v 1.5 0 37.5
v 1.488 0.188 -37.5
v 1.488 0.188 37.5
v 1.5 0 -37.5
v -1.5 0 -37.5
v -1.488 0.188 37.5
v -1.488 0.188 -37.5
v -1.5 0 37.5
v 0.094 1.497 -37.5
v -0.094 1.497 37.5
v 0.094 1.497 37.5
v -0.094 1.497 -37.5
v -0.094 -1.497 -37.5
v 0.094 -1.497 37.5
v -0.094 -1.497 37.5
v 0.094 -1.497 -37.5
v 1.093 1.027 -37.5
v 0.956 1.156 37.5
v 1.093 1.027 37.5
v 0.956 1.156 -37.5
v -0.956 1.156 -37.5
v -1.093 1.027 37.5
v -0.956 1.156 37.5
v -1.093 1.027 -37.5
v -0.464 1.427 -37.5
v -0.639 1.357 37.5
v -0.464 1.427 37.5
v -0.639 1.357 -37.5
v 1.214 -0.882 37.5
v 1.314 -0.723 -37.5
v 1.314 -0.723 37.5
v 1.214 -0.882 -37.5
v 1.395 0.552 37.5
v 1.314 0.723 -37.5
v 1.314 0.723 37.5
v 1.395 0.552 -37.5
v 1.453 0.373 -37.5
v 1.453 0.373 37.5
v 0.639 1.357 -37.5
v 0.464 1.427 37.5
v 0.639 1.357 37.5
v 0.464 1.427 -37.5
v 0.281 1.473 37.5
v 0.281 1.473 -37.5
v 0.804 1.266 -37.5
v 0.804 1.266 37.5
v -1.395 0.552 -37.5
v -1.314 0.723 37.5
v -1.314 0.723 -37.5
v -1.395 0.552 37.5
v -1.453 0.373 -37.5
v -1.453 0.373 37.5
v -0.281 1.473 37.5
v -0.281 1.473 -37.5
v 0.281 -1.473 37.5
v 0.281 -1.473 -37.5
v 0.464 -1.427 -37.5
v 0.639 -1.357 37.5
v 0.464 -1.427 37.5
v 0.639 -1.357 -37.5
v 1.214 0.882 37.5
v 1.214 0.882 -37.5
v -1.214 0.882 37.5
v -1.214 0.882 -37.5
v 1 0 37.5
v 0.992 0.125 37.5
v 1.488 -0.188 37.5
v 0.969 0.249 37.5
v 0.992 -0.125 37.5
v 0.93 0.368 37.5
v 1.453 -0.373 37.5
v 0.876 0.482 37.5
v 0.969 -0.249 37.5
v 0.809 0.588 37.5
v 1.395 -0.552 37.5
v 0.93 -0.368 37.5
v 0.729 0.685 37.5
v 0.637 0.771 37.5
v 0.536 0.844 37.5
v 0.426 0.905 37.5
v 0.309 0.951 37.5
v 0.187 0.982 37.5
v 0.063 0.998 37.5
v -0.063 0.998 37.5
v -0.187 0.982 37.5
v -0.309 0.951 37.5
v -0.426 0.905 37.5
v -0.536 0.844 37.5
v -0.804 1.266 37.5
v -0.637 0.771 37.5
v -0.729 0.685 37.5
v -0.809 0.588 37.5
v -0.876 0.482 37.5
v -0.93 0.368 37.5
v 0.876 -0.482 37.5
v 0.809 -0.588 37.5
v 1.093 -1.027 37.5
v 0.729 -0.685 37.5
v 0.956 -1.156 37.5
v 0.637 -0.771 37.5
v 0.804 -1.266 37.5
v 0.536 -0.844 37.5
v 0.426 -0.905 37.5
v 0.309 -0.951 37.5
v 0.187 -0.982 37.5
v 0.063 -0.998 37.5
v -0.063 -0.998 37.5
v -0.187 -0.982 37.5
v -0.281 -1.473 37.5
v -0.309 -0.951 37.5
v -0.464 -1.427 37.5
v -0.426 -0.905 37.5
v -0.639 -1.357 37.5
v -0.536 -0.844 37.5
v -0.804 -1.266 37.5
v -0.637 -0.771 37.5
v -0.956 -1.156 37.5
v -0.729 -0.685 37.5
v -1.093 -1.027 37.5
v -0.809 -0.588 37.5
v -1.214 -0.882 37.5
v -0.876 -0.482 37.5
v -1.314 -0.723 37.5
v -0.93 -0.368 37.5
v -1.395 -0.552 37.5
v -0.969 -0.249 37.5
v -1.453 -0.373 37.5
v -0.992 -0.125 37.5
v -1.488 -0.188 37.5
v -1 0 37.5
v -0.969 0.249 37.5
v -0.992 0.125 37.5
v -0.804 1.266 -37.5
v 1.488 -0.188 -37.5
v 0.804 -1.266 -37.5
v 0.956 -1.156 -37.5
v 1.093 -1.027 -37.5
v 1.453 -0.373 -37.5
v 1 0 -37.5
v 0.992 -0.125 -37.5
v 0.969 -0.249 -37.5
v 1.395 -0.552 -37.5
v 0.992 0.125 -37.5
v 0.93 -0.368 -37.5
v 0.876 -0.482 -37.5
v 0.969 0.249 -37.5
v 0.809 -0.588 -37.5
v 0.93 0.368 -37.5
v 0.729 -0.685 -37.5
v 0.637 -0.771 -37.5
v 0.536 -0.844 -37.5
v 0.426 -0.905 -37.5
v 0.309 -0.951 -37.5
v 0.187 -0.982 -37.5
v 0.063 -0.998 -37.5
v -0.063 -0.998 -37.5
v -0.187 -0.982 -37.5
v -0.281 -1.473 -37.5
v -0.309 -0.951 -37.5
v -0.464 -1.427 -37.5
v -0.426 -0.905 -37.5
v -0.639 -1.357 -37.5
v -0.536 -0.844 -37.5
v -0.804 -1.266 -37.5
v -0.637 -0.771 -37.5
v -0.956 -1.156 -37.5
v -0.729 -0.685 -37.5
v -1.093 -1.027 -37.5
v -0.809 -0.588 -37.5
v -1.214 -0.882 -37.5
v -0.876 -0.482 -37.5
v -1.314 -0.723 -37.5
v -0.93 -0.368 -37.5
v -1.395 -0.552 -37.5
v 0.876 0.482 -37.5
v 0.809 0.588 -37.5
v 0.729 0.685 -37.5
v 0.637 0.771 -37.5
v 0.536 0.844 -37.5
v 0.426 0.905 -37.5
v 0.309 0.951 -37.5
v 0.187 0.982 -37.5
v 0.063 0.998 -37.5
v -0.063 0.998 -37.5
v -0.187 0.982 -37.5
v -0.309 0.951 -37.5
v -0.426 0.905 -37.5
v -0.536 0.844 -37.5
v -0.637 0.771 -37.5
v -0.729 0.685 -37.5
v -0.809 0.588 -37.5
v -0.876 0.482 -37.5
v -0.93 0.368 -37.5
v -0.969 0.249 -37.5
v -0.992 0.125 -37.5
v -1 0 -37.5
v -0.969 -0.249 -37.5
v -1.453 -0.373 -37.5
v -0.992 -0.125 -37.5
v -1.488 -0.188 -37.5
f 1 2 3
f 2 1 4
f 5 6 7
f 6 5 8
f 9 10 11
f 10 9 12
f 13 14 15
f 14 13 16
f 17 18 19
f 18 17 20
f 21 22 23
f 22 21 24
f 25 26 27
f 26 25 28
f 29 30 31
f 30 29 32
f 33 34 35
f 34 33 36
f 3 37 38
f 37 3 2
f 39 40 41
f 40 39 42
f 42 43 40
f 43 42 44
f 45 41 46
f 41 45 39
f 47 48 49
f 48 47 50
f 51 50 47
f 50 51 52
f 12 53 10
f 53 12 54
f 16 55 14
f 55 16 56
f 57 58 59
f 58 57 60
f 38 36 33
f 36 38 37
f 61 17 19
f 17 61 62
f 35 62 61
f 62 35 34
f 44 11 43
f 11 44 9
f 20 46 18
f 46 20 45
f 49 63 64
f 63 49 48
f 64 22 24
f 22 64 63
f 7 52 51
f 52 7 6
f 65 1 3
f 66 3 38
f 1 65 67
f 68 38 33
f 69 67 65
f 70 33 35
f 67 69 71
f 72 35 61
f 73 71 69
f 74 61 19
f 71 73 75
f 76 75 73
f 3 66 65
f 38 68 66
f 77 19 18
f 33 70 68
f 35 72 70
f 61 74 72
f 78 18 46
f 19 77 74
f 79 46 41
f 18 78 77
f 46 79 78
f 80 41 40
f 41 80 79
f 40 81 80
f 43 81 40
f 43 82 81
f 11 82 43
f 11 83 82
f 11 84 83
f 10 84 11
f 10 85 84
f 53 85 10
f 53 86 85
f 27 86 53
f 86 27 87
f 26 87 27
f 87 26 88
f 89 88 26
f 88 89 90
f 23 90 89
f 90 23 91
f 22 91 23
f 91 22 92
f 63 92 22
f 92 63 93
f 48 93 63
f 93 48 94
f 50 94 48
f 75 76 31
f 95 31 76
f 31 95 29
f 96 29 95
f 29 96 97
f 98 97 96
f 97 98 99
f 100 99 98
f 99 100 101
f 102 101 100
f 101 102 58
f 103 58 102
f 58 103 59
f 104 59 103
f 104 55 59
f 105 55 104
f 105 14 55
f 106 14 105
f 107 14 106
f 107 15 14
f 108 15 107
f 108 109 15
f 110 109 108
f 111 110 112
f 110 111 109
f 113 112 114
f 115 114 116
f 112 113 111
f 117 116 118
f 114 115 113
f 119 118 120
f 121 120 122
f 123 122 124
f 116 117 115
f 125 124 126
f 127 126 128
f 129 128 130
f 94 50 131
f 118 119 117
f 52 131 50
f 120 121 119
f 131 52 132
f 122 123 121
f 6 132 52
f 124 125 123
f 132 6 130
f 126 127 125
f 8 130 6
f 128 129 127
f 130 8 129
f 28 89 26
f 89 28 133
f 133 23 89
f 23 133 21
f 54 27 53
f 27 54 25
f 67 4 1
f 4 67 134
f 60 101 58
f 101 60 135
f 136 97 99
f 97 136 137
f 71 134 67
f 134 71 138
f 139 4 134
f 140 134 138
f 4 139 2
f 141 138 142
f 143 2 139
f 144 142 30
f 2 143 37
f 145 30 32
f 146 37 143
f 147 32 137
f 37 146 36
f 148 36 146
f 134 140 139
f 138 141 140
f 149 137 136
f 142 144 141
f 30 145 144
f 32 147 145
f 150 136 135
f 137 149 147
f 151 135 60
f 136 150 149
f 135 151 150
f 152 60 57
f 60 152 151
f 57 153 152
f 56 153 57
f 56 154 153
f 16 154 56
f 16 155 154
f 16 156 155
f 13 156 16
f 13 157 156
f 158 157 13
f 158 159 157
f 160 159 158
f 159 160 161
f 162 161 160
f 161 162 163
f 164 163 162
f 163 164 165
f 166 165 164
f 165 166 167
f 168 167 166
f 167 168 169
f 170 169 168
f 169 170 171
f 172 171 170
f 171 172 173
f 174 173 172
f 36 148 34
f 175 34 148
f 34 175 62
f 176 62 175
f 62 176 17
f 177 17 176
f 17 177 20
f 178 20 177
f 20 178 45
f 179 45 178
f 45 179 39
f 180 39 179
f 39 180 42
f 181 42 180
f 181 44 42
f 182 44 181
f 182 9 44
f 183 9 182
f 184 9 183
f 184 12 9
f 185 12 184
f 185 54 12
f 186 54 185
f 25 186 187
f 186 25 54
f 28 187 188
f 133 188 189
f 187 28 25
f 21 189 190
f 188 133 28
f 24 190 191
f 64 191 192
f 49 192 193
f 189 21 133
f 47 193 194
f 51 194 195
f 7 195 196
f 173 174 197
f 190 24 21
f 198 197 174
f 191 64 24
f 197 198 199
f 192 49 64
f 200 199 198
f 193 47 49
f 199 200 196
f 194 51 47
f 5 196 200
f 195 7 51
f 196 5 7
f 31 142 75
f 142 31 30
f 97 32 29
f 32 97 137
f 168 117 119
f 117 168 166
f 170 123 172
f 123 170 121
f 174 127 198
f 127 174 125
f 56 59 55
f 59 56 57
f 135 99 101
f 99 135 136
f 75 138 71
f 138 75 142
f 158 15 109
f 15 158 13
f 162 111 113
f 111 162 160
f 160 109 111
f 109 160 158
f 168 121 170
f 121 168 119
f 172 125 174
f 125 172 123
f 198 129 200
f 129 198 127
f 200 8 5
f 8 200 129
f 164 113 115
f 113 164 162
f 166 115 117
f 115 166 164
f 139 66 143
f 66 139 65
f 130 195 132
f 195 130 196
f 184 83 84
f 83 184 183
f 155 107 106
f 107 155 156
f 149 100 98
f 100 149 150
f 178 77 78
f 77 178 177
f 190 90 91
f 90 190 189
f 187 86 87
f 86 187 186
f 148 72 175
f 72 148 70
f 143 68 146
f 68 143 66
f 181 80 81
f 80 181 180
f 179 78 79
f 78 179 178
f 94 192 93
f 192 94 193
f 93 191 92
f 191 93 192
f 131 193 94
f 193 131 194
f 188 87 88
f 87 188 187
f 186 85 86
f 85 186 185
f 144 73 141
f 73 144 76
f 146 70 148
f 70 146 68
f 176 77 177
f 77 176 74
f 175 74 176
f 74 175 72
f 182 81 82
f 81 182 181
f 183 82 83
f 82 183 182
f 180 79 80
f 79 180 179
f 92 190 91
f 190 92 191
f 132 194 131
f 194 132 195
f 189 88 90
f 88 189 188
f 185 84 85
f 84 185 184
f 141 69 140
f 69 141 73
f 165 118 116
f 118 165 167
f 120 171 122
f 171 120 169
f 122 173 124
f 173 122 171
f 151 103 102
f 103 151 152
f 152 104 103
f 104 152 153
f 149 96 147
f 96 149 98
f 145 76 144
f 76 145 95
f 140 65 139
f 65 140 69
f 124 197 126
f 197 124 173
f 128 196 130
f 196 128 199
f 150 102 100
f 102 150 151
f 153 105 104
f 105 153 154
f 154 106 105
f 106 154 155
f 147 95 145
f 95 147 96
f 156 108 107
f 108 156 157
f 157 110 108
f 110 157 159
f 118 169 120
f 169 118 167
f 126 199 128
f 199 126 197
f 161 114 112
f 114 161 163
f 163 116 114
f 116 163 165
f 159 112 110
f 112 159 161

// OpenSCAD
$fn = 50;


difference() {
	union() {
		translate(v = [0, 0, -37.5000000000]) {
			cylinder(h = 75, r = 1.5000000000);
		}
	}
	union() {
		translate(v = [0, 0, -100.0000000000]) {
			cylinder(h = 200, r = 1.0000000000);
		}
	}
}
